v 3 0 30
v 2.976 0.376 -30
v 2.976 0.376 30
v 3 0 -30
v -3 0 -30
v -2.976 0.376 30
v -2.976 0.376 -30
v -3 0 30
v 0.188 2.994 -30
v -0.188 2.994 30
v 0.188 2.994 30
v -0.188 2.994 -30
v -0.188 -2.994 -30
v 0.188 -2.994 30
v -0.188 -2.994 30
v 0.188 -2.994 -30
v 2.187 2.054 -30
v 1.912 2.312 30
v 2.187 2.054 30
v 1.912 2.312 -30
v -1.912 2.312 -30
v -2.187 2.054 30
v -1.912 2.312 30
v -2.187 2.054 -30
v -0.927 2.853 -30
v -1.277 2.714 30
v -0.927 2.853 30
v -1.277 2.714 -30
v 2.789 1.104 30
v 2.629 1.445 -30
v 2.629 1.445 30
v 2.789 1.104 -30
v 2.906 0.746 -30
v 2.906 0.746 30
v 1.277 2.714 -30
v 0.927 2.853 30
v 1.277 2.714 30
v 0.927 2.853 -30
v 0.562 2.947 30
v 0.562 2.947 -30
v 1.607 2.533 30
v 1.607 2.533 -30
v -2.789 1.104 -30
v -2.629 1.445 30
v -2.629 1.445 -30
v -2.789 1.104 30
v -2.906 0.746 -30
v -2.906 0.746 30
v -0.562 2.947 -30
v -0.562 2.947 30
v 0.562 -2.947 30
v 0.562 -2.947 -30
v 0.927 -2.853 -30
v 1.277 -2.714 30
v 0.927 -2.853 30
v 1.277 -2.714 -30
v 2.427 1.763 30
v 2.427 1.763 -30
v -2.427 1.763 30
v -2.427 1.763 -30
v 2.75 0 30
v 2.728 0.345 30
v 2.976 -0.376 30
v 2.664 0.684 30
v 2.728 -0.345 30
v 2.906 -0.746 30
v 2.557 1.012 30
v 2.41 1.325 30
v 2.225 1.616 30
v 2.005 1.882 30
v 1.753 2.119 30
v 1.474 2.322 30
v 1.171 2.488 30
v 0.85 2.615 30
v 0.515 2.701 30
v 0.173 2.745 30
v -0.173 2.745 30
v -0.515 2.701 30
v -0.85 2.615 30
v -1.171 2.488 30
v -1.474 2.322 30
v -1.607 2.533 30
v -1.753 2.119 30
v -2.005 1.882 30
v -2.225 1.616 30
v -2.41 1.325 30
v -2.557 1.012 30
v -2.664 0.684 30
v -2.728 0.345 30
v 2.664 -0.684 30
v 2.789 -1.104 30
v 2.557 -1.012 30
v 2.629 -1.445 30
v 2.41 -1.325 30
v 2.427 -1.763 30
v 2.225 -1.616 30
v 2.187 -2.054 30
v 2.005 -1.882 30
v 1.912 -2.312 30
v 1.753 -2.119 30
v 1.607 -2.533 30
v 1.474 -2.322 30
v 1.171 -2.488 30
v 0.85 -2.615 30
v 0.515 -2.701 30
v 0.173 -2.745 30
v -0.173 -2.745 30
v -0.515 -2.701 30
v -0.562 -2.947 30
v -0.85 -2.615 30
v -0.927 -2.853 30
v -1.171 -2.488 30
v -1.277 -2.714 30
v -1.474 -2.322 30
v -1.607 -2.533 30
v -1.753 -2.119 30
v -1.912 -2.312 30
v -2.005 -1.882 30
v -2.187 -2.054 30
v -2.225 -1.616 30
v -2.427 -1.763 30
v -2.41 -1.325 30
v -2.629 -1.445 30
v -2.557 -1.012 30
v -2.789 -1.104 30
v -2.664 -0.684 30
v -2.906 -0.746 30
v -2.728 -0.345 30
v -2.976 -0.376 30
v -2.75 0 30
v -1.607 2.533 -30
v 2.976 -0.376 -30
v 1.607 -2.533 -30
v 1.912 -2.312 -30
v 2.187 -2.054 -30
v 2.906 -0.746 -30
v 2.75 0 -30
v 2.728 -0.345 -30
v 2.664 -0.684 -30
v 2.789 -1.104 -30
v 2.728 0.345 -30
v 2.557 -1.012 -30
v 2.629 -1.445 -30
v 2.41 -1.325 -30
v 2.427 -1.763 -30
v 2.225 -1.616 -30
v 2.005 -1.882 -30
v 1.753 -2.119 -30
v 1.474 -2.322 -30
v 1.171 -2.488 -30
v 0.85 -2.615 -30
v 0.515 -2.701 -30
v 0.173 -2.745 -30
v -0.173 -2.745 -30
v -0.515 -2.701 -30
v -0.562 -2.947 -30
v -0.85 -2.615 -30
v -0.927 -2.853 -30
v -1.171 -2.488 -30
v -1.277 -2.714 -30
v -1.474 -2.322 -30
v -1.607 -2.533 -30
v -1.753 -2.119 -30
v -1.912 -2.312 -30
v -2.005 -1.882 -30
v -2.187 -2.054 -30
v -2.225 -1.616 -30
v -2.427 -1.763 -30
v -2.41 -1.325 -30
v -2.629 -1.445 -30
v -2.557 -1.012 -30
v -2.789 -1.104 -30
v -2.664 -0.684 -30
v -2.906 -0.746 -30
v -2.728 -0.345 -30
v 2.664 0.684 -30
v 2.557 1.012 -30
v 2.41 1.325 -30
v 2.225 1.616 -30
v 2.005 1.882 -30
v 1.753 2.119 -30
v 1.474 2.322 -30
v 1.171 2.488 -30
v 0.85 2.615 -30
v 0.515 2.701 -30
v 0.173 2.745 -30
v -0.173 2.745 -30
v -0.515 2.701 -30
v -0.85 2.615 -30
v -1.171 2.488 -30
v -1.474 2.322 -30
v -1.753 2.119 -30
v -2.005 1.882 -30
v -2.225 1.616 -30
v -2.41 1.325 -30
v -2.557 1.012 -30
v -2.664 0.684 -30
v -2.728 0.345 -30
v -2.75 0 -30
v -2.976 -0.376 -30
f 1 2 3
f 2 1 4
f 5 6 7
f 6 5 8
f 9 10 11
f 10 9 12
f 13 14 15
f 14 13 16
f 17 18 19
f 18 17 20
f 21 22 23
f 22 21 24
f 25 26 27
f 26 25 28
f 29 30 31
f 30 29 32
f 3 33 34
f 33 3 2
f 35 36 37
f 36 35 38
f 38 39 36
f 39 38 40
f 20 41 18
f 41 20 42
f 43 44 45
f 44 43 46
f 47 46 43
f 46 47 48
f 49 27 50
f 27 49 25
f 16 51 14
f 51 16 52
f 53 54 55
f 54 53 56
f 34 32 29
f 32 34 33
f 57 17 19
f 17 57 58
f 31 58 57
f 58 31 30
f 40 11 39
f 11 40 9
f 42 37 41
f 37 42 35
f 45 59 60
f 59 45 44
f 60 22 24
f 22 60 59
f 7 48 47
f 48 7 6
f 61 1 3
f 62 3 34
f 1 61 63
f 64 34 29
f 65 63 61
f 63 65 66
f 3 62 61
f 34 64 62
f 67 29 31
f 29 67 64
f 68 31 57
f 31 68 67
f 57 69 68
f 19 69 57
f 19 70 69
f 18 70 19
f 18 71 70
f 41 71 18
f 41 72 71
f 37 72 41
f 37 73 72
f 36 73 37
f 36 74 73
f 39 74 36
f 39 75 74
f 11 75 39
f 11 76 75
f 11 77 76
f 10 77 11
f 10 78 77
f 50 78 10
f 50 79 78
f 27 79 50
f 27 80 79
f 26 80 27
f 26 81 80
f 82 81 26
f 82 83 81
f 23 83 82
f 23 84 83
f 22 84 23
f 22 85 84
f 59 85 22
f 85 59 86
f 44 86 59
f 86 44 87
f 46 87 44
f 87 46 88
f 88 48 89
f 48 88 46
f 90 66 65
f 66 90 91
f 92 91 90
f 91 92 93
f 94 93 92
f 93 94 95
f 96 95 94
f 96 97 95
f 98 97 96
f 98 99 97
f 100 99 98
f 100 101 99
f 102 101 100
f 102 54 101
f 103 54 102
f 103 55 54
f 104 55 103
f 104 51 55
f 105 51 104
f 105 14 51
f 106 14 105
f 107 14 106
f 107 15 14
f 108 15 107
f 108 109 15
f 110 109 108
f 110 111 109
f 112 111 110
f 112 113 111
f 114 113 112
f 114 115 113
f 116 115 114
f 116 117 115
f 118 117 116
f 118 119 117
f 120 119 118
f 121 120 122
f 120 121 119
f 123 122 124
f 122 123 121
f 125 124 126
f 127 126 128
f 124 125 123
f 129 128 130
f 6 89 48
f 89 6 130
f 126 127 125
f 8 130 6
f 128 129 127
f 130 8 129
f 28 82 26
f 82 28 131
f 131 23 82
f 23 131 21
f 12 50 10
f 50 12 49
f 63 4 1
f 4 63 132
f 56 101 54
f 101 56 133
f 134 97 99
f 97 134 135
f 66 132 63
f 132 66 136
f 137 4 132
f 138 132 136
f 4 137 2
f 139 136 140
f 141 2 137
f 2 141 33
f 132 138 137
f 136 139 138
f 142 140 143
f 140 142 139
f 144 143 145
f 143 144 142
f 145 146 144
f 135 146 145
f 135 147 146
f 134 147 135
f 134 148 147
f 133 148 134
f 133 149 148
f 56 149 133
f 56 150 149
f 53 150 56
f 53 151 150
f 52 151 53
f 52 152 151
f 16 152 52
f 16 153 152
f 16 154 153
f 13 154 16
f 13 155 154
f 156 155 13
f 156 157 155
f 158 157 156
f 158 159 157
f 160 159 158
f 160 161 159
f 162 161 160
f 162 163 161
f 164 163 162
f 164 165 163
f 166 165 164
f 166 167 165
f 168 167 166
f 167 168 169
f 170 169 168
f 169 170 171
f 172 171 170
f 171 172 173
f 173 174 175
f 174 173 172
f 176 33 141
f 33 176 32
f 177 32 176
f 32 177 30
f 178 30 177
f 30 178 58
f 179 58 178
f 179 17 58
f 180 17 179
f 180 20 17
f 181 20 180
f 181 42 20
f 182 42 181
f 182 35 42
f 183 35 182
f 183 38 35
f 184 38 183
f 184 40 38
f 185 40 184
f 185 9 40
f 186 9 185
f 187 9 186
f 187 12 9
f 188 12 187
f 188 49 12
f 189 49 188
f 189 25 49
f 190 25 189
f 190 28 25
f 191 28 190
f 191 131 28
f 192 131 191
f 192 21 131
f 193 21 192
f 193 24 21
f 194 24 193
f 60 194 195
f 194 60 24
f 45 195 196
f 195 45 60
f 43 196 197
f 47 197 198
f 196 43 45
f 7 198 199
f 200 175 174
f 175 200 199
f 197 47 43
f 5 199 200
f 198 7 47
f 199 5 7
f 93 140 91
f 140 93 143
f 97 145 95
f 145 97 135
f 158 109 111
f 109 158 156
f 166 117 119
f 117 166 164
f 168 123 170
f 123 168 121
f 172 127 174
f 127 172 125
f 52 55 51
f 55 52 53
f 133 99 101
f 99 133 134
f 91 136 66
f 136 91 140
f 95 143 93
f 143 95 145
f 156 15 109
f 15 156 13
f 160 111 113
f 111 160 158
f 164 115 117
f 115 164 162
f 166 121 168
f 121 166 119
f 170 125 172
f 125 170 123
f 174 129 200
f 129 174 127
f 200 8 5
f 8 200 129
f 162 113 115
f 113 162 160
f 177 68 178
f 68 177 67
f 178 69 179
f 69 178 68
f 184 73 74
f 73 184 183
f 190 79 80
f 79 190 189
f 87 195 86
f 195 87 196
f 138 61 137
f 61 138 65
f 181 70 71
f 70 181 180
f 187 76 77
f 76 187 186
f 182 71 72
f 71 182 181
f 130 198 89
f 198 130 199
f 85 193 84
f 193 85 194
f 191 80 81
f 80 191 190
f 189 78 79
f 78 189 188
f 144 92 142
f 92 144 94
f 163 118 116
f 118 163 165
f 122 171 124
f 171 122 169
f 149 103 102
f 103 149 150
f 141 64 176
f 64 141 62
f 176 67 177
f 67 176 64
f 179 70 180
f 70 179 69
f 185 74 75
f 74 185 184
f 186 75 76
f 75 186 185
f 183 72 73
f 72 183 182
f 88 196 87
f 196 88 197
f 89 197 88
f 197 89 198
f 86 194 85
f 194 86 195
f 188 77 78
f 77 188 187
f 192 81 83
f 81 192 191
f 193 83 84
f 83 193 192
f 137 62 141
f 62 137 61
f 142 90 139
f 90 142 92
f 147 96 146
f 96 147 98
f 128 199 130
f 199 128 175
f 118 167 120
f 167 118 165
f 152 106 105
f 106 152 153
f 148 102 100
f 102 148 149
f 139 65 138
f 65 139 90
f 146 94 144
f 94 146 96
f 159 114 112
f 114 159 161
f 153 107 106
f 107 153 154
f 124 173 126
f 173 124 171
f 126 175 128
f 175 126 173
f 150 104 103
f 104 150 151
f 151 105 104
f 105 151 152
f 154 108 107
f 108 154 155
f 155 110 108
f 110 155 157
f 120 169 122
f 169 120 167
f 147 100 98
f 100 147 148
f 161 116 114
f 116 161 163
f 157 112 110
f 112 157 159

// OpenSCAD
$fn = 50;


difference() {
	union() {
		translate(v = [0, 0, -30.0000000000]) {
			cylinder(h = 60, r = 3.0000000000);
		}
	}
	union() {
		translate(v = [0, 0, -100.0000000000]) {
			cylinder(h = 200, r = 2.7500000000);
		}
	}
}
